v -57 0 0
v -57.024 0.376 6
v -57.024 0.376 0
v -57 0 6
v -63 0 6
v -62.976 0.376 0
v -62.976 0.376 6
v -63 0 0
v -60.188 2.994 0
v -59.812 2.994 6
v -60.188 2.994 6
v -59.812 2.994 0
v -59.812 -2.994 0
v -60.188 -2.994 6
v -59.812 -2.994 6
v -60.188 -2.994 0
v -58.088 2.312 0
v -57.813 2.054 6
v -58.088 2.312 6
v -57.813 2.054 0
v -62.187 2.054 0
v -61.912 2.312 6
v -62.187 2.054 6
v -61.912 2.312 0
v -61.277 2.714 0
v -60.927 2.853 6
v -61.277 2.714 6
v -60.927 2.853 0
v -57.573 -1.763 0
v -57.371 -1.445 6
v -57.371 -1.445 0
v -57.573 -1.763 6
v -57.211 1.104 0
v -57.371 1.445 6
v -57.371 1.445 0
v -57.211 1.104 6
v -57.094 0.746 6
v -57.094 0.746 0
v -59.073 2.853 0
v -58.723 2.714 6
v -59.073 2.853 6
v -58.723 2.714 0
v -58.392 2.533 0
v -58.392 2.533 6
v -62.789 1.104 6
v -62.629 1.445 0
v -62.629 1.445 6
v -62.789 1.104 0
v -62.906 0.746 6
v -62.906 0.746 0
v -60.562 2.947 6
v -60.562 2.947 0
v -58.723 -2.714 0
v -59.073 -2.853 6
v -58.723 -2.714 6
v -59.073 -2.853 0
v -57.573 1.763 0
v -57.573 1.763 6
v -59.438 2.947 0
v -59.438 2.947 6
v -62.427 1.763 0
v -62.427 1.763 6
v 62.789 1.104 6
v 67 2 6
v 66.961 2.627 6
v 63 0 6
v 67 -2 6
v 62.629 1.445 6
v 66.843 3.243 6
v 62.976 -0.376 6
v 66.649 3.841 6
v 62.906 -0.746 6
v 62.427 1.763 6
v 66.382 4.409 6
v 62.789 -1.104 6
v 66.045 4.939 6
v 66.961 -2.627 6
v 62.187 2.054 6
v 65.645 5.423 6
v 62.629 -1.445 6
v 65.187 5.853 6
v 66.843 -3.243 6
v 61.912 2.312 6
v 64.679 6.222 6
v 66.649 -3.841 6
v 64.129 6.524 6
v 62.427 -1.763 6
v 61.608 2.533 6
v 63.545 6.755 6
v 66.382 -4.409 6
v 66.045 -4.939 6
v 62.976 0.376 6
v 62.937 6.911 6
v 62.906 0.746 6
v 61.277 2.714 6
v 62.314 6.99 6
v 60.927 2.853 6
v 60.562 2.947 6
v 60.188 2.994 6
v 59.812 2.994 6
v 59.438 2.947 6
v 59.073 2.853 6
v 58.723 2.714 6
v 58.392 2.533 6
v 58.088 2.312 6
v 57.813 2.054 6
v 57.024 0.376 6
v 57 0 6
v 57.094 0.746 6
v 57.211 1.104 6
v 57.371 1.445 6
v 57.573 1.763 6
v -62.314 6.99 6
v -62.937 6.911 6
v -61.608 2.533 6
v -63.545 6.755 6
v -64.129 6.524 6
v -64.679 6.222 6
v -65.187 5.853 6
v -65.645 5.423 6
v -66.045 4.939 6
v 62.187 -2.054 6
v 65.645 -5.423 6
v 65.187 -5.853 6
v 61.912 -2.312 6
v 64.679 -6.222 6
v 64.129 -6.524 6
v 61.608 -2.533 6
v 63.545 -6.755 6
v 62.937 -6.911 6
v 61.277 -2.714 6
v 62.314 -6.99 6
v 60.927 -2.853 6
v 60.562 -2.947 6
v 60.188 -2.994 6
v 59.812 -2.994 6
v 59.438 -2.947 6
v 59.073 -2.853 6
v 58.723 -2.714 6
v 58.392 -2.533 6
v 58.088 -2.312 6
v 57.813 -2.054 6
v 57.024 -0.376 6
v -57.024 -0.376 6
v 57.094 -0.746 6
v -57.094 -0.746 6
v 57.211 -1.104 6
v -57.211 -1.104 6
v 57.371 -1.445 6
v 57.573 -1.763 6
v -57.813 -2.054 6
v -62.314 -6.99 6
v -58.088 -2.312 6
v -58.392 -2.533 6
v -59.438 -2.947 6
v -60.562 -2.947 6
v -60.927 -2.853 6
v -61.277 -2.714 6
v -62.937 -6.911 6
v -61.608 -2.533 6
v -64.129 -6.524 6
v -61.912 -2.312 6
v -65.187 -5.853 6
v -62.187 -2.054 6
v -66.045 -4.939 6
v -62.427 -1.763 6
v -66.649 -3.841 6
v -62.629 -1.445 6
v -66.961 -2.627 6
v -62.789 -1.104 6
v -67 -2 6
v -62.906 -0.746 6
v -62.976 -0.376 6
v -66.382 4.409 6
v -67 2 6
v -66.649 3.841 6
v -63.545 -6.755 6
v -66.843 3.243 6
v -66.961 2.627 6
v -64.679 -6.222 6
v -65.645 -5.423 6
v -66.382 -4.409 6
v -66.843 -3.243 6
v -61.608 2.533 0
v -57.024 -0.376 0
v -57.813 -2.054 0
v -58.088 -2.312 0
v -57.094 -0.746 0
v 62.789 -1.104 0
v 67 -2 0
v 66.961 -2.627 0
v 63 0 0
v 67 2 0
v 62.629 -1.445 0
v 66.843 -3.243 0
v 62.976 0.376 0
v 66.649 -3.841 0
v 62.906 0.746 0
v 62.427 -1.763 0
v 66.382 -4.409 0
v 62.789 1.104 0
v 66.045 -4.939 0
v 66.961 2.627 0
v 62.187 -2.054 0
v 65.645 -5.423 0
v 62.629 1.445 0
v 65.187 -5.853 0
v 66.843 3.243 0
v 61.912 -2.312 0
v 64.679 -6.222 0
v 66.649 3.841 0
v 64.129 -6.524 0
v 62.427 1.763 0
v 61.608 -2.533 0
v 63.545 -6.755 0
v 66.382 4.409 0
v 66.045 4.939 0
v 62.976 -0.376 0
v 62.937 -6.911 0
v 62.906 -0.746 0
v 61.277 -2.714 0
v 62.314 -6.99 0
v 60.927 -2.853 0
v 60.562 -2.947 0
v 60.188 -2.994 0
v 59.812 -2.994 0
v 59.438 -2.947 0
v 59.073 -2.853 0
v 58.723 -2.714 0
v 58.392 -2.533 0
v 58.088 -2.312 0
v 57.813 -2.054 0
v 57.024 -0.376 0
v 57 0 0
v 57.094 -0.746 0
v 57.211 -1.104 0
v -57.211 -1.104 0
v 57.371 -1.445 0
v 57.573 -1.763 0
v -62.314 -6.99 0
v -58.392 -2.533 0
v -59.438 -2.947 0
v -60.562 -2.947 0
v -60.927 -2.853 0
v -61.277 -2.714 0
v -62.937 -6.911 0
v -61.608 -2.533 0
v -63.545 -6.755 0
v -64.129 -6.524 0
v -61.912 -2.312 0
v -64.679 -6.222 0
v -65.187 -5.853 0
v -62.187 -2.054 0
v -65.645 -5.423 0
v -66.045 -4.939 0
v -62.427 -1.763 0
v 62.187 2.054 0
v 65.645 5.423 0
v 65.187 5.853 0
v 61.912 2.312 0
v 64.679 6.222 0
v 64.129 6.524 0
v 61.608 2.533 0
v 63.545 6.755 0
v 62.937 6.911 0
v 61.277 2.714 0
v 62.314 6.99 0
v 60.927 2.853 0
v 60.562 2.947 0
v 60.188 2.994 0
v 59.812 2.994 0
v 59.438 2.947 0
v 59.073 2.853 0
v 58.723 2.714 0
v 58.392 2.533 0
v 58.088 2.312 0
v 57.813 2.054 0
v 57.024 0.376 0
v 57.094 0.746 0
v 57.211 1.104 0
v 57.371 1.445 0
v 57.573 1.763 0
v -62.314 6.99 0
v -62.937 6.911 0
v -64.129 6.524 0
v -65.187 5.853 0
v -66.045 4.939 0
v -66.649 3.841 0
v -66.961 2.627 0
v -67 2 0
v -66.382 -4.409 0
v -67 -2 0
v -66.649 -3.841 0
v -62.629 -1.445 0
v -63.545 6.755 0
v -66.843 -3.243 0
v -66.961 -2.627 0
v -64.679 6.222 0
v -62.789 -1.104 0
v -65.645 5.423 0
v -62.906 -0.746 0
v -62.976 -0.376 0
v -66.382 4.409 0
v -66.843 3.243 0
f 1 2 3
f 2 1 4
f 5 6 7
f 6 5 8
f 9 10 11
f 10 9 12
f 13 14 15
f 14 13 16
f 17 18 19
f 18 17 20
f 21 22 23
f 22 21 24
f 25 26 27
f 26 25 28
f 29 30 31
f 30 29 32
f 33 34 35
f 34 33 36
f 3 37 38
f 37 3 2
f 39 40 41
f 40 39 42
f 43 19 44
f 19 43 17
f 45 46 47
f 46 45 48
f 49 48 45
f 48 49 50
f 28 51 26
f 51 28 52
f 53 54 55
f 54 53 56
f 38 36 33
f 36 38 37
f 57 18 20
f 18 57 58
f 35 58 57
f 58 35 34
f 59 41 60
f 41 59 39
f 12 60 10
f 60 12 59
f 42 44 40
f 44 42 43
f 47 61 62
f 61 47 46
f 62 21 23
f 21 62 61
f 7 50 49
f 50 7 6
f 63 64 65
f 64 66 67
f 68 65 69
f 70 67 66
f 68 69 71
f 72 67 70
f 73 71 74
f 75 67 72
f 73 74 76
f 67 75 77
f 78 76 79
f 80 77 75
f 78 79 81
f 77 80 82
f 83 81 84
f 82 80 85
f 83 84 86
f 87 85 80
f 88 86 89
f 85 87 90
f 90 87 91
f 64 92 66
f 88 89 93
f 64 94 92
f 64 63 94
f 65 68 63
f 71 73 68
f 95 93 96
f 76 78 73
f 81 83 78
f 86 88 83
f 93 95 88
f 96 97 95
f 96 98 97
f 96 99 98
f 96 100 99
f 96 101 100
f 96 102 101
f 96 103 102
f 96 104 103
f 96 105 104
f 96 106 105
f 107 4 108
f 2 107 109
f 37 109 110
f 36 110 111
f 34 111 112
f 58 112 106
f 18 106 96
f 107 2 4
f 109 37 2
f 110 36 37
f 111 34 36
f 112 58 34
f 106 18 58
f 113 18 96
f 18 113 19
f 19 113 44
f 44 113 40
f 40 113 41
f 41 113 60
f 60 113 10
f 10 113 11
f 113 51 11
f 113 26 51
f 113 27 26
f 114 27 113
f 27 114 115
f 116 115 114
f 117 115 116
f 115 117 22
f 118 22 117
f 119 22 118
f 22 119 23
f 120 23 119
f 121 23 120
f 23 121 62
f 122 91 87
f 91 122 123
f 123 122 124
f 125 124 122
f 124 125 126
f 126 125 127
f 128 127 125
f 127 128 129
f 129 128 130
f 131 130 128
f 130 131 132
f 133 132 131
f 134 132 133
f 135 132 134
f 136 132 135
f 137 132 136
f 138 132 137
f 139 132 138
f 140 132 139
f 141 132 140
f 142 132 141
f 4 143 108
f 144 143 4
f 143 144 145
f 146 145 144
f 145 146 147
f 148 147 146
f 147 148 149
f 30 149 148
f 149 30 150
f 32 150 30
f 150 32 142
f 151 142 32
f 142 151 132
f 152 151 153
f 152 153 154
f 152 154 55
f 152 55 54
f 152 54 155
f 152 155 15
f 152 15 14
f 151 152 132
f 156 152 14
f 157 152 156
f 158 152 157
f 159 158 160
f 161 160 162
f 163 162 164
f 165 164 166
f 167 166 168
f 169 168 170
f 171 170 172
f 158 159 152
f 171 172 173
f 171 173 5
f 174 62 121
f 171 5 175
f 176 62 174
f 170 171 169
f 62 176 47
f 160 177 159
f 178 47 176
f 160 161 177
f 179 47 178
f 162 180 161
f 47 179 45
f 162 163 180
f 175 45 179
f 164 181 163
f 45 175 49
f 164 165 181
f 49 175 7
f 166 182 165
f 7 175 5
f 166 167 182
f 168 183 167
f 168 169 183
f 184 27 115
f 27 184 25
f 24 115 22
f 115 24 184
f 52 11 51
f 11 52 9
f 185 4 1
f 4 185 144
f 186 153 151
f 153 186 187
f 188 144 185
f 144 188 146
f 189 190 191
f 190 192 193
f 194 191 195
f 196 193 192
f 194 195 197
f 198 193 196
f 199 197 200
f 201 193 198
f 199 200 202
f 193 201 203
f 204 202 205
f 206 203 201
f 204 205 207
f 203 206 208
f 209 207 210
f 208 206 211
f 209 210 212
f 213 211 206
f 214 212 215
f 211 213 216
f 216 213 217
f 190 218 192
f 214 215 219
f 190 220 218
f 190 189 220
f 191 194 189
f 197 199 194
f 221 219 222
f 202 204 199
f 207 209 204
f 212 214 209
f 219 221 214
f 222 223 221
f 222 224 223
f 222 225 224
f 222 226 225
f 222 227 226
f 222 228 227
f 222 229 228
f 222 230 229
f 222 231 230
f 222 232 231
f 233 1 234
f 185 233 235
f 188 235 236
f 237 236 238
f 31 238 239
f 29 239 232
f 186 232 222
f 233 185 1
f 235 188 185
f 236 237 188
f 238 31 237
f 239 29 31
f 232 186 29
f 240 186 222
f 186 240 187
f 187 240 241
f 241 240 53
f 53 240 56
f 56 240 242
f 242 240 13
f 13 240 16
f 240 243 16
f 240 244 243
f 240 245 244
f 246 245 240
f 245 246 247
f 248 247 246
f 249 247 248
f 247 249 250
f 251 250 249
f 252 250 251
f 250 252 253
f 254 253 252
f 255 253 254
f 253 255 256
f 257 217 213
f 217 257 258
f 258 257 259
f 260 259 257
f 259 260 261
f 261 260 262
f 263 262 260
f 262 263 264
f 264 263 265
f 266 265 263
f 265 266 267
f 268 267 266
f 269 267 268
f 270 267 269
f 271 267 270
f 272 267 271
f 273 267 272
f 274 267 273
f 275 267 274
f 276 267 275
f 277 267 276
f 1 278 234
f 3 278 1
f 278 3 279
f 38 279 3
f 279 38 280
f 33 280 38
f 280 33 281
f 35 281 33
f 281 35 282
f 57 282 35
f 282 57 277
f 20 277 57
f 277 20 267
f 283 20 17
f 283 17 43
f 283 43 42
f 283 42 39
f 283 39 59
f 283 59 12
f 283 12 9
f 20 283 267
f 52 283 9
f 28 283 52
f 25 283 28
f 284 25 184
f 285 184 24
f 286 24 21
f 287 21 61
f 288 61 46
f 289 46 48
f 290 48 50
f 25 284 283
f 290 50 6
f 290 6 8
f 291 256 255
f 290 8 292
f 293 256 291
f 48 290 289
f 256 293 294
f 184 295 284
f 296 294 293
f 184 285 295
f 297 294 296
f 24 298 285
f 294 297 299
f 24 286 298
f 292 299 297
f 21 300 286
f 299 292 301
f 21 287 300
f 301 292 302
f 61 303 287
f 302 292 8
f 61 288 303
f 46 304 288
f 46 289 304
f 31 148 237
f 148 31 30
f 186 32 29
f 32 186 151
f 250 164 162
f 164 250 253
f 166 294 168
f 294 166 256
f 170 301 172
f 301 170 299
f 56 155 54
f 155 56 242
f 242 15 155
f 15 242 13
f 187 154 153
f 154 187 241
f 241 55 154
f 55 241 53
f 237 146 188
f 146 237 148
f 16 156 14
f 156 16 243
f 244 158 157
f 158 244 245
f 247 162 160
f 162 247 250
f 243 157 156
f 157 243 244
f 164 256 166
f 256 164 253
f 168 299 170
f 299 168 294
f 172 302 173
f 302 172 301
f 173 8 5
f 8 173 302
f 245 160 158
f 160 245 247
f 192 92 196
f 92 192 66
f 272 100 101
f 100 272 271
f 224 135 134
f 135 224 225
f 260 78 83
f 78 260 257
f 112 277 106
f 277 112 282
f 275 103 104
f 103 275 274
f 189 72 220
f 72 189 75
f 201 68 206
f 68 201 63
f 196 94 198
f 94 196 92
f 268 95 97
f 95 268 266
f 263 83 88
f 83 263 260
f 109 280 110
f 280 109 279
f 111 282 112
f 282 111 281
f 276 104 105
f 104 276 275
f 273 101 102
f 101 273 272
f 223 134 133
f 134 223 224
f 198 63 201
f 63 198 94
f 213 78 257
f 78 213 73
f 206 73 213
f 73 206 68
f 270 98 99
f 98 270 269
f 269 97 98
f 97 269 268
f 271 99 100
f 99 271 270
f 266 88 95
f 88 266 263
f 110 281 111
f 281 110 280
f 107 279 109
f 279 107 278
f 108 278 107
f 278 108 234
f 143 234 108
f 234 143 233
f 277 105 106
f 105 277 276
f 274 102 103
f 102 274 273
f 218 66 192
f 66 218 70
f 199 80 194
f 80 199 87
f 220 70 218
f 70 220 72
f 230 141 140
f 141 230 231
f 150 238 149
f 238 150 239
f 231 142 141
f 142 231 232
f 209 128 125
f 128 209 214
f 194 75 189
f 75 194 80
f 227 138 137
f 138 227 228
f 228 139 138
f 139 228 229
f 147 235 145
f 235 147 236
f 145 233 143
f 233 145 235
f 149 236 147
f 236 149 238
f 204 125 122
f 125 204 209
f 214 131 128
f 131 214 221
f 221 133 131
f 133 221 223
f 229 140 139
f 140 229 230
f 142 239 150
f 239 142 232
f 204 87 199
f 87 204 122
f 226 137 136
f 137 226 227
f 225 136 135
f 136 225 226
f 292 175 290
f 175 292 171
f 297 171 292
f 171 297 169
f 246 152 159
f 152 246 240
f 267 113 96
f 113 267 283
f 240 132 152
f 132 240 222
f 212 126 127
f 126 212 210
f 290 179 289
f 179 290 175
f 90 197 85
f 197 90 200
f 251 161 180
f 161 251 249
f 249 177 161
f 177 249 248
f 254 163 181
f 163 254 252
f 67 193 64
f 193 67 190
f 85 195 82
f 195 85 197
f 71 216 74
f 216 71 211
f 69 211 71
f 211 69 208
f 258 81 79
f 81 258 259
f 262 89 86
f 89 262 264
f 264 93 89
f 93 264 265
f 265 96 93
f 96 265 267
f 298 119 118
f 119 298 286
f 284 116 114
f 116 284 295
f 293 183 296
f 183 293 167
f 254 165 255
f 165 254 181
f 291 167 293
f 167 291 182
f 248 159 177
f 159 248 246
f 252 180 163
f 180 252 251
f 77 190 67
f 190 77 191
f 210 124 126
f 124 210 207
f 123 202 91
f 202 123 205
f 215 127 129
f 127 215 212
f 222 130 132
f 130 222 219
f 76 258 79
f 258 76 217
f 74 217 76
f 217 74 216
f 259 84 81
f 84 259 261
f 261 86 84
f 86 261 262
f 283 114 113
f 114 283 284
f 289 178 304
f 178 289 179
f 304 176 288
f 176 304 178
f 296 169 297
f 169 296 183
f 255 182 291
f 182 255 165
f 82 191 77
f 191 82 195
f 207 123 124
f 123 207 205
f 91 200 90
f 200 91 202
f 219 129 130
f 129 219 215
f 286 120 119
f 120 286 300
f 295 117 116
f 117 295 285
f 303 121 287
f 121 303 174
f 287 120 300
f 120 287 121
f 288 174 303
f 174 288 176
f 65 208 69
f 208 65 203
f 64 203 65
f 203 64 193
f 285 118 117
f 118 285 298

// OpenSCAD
$fn = 50;


difference() {
	union() {
		hull() {
			translate(v = [-62.0000000000, 2.0000000000, 0]) {
				cylinder(h = 6, r = 5);
			}
			translate(v = [62.0000000000, 2.0000000000, 0]) {
				cylinder(h = 6, r = 5);
			}
			translate(v = [-62.0000000000, -2.0000000000, 0]) {
				cylinder(h = 6, r = 5);
			}
			translate(v = [62.0000000000, -2.0000000000, 0]) {
				cylinder(h = 6, r = 5);
			}
		}
	}
	union() {
		translate(v = [-60.0000000000, 0.0000000000, 0]) {
			cylinder(h = 6, r = 3.0000000000);
		}
		translate(v = [60.0000000000, 0.0000000000, 0]) {
			cylinder(h = 6, r = 3.0000000000);
		}
		translate(v = [-60.0000000000, 0.0000000000, 0]) {
			cylinder(h = 6, r = 1.5000000000);
		}
		translate(v = [60.0000000000, 0.0000000000, 0]) {
			cylinder(h = 6, r = 1.5000000000);
		}
		translate(v = [-60.0000000000, 0.0000000000, 0]) {
			cylinder(h = 6, r = 1.5000000000);
		}
		translate(v = [60.0000000000, 0.0000000000, 0]) {
			cylinder(h = 6, r = 1.5000000000);
		}
		translate(v = [-60.0000000000, 0.0000000000, 0]) {
			cylinder(h = 6, r = 1.5000000000);
		}
		translate(v = [60.0000000000, 0.0000000000, 0]) {
			cylinder(h = 6, r = 1.5000000000);
		}
	}
}
